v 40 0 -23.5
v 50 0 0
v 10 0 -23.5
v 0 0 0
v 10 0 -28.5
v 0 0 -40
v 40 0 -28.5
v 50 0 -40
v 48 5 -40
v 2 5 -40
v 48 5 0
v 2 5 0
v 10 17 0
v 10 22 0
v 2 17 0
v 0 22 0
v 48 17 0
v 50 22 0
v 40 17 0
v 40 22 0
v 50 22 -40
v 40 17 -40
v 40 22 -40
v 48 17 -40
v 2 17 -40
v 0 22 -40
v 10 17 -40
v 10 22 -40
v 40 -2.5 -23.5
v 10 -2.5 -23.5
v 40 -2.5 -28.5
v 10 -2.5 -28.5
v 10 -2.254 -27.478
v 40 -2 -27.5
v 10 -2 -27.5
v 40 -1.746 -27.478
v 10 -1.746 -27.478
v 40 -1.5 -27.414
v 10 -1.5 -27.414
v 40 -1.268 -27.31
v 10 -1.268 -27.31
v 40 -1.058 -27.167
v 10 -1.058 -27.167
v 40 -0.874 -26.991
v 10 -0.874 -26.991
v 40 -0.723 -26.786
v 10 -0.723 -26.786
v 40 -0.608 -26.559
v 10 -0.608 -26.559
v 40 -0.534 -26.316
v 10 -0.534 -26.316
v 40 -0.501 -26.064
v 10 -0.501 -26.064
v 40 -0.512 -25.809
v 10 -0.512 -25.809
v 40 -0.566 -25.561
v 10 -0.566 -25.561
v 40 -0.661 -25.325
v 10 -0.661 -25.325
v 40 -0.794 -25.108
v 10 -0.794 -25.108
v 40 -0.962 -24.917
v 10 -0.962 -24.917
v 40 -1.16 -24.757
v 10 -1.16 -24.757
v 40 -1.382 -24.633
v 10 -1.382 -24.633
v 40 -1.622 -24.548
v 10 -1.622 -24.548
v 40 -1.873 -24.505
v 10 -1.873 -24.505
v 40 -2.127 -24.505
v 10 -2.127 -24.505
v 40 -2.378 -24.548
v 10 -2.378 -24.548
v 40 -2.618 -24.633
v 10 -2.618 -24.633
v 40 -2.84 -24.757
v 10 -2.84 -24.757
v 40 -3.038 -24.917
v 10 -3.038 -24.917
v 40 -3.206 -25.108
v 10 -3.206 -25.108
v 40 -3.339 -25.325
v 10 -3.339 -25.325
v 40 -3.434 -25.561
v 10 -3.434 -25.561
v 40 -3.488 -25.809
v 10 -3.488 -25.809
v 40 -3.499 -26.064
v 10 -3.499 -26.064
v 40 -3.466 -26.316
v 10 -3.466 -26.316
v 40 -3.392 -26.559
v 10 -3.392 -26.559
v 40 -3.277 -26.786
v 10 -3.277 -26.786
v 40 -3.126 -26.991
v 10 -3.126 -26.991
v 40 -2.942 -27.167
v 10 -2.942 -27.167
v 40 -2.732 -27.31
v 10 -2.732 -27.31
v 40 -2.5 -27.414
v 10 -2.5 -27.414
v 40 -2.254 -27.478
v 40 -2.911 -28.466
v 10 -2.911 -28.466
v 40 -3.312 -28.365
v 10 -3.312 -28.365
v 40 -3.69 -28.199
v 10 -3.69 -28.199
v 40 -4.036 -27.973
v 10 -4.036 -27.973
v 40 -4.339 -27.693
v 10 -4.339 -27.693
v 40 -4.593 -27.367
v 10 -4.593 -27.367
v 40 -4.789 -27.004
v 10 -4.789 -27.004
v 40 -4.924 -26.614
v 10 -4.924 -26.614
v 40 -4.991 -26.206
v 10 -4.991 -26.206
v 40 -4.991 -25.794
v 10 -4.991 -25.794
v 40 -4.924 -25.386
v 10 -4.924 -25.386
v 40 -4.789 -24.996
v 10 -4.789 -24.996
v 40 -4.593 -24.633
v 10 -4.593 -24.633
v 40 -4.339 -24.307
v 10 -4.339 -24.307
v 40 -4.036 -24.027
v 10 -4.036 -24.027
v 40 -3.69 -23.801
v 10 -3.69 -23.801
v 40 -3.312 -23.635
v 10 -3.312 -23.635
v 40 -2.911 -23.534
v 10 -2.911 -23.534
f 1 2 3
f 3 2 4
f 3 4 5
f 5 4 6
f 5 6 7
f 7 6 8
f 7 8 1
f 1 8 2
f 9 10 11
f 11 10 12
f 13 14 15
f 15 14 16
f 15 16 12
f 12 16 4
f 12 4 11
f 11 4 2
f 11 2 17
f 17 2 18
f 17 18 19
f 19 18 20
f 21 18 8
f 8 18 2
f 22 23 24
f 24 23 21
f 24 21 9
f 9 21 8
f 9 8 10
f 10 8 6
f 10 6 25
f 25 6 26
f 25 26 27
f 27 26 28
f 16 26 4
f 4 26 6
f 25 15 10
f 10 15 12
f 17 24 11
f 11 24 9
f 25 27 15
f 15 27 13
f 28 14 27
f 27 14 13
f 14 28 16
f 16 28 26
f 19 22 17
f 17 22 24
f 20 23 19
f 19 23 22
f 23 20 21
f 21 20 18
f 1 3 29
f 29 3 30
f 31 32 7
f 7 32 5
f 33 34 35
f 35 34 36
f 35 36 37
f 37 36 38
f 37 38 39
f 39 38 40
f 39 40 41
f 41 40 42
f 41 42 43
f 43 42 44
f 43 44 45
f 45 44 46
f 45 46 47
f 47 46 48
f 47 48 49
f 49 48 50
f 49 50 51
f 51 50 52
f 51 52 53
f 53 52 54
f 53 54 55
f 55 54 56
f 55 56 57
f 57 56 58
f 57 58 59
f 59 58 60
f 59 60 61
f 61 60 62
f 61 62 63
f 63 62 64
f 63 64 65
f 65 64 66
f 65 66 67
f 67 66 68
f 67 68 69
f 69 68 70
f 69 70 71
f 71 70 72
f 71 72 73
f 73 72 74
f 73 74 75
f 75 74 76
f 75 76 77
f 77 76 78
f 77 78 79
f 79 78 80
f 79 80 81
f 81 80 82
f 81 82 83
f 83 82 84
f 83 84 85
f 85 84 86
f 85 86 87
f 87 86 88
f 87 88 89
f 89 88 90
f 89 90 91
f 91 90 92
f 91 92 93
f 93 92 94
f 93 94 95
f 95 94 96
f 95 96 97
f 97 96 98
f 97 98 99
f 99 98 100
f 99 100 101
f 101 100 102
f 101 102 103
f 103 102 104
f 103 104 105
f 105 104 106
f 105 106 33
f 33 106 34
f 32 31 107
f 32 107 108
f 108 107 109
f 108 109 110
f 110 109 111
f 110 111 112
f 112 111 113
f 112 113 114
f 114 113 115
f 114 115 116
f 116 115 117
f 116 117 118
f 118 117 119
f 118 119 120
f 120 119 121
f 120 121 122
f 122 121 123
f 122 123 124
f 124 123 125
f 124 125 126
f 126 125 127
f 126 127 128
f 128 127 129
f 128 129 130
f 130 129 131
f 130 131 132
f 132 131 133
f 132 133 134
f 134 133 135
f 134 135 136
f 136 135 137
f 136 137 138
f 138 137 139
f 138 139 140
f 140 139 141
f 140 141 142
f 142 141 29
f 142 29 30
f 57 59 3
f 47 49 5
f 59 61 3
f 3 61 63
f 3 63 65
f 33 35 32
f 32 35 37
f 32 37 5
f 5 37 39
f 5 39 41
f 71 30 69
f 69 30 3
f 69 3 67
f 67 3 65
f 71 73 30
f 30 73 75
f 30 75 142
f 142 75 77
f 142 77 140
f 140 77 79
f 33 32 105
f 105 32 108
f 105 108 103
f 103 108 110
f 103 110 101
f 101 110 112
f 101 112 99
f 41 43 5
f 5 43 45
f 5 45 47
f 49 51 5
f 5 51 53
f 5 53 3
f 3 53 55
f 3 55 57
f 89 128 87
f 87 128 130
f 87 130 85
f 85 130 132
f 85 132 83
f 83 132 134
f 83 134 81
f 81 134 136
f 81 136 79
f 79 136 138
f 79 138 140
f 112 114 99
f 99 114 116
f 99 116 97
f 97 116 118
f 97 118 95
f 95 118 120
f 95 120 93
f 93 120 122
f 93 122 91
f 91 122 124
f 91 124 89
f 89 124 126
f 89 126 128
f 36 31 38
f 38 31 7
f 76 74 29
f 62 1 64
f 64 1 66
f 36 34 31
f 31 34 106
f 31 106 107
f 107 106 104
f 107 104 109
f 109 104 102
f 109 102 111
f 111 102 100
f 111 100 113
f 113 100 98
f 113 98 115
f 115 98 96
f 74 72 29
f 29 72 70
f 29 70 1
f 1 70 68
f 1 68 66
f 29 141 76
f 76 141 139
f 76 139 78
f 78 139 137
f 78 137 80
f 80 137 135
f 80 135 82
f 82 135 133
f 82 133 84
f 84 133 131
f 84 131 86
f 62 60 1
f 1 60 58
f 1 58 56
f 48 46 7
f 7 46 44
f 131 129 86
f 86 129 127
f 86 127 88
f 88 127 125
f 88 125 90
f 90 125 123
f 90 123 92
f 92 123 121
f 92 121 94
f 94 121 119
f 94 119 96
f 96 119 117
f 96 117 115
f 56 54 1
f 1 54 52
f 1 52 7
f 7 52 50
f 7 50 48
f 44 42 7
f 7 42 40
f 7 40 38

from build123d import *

# Parameters (mm, degrees)
SKETCH1_W                = 50
SKETCH1_H                = 40
BOSS_EXTRUDE2_DEPTH      = 5
SKETCH2_W                = 2
SKETCH2_H                = 40
BOSS_EXTRUDE4_DEPTH      = 12
SKETCH3_W                = 10
SKETCH3_H                = 40
BOSS_EXTRUDE5_DEPTH      = 5
BOSS_EXTRUDE6_DEPTH      = 15
BOSS_EXTRUDE6_DEPTH_BACK = 15
SKETCH5_R                = 1.5


with BuildPart() as part:
    # Sketch1 → Boss-Extrude2 (new body)
    with BuildSketch(Plane(origin=(0, 0, 0), x_dir=(1, 0, 0), z_dir=(0, 1, 0))):
        with Locations((25, 20)):
            Rectangle(SKETCH1_W, SKETCH1_H)
    extrude(amount=BOSS_EXTRUDE2_DEPTH)

    # Sketch2 → Boss-Extrude4 (add)
    with BuildSketch(Plane(origin=(0, 5, 0), x_dir=(1, 0, 0), z_dir=(0, 1, 0))):
        with Locations((1, 20)):
            Rectangle(SKETCH2_W, SKETCH2_H)
        with Locations((49, 20)):
            Rectangle(SKETCH2_W, SKETCH2_H)
    extrude(amount=BOSS_EXTRUDE4_DEPTH)

    # Sketch3 → Boss-Extrude5 (add)
    with BuildSketch(Plane(origin=(0, 17, 0), x_dir=(1, 0, 0), z_dir=(0, 1, 0))):
        with Locations((5, 20)):
            Rectangle(SKETCH3_W, SKETCH3_H)
        with Locations((45, 20)):
            Rectangle(SKETCH3_W, SKETCH3_H)
    extrude(amount=BOSS_EXTRUDE5_DEPTH)

    # Sketch5 → Boss-Extrude6 (add, two sides: drawn at the far end of the back side and taken through both)
    with BuildSketch(Plane(origin=(25, 0, 0), x_dir=(0, 0, -1), z_dir=(1, 0, 0)).offset(-BOSS_EXTRUDE6_DEPTH_BACK)):
        with BuildLine():
            Line((23.5, 0), (23.5, -2.5))
            ThreePointArc((23.5, -2.5), (26, -5), (28.5, -2.5))
            Line((28.5, -2.5), (28.5, 0))
            Line((28.5, 0), (23.5, 0))
        make_face()
        with Locations((26, -2)):
            Circle(SKETCH5_R, mode=Mode.SUBTRACT)
    extrude(amount=BOSS_EXTRUDE6_DEPTH + BOSS_EXTRUDE6_DEPTH_BACK)


solid = part.part
